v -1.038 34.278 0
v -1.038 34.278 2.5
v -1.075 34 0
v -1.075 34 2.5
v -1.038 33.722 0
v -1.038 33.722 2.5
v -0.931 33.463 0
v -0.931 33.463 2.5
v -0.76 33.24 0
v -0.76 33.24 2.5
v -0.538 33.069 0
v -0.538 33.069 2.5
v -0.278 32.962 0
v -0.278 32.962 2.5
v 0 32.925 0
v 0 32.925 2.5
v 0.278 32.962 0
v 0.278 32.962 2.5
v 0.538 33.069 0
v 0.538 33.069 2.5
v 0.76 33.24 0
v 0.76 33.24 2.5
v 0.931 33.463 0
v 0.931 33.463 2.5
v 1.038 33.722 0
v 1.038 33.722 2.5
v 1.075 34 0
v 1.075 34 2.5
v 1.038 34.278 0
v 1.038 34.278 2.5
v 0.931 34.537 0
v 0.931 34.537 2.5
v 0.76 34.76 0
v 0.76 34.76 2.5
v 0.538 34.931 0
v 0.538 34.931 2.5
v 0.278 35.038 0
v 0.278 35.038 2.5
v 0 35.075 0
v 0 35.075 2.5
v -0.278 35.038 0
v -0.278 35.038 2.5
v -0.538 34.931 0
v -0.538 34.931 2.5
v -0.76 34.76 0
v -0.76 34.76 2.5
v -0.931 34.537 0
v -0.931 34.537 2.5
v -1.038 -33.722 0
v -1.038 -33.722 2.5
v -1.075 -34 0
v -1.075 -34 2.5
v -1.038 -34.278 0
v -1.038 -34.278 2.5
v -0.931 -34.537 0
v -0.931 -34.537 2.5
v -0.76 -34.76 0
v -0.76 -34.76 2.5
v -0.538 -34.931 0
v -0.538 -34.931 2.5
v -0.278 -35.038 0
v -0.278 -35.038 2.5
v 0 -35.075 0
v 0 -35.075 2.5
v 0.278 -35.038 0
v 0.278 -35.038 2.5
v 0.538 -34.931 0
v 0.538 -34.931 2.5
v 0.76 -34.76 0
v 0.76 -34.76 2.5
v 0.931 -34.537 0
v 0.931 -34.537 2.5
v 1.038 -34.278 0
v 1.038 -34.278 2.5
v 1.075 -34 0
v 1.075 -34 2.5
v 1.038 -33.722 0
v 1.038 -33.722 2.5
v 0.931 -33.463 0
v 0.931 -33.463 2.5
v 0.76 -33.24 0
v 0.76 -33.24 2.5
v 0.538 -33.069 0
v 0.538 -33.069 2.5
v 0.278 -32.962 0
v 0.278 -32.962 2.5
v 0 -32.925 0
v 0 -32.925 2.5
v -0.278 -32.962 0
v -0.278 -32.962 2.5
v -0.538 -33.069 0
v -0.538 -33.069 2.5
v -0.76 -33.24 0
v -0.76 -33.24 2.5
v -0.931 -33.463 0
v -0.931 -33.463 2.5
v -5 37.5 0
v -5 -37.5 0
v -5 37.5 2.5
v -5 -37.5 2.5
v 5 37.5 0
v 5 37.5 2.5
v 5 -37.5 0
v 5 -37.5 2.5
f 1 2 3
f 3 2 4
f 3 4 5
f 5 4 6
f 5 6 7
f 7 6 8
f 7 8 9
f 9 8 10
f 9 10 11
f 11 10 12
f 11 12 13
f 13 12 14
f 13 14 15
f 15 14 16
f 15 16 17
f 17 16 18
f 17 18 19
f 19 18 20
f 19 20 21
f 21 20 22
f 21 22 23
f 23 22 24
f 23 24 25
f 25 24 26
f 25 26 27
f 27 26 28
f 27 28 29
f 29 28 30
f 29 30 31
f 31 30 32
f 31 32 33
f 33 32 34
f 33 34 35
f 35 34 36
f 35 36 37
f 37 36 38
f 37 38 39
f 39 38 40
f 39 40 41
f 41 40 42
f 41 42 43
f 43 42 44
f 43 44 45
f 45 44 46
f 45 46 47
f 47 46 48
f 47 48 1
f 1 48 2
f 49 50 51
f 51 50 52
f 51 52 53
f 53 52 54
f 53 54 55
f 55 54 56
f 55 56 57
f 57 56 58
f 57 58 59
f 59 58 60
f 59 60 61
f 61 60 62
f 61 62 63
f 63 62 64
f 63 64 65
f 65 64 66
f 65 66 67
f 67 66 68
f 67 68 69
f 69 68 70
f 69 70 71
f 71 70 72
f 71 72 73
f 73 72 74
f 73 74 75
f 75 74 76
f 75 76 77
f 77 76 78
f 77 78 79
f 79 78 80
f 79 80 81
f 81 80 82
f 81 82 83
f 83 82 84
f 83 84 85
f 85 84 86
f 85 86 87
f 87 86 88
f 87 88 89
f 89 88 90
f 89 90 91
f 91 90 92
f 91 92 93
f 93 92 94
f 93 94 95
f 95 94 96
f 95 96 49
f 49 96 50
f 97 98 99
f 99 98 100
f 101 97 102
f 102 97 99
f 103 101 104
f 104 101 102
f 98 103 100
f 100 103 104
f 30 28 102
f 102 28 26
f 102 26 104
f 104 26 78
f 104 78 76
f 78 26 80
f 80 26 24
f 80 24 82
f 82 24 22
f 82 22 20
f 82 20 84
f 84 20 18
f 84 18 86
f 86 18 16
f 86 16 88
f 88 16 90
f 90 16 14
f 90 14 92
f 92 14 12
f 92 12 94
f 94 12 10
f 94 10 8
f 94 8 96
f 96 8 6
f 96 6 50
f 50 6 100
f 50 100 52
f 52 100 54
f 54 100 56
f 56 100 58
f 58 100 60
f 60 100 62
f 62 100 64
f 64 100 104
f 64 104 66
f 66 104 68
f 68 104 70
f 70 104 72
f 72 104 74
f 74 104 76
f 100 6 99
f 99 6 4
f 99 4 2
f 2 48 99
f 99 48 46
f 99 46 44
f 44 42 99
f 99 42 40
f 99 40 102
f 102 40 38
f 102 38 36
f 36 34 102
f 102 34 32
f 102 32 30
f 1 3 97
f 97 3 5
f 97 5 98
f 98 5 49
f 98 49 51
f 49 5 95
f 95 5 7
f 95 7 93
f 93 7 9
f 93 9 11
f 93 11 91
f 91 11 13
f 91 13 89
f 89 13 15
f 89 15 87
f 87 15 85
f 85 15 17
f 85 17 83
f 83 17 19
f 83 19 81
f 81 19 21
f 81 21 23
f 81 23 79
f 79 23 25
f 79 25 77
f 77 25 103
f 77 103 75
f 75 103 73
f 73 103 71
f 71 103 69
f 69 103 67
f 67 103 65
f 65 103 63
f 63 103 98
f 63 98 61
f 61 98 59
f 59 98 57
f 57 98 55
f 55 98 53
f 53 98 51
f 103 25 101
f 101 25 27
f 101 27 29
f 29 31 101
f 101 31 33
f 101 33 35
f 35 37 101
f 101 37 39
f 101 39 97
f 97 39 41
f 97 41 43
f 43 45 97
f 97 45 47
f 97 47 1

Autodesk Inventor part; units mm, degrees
ref_plane "YZ Plane" through (0, 0, 0) normal (1, 0, 0) x (0, 1, 0)
ref_plane "XZ Plane" through (0, 0, 0) normal (0, 1, 0) x (-1, 0, 0)
ref_plane "XY Plane" through (0, 0, 0) normal (0, 0, 1) x (1, 0, 0)
sketch "Náčrt1" plane through (0, 0, 0) normal (0, 0, 1) x (1, 0, 0)
  line L0 (0, 52.5) -> (0, -52.5) projected
  line L1 (-7, 0) -> (7, 0) projected
  line L2 (-5, 37.5) -> (5, 37.5)
  line L3 (5, 37.5) -> (5, -37.5)
  line L4 (5, -37.5) -> (-5, -37.5)
  line L5 (-5, -37.5) -> (-5, 37.5)
  point P0 (0, 0)
  dimension "d0" = 75
  dimension "d1" = 10
extrude "Vysunutí1" add sketch "Náčrt1" along normal blind 2.5
sketch "Náčrt2" plane through (0, 0, 2.5) normal (0, 0, 1) x (1, 0, 0)
  line L0 (0, 52.5) -> (0, -52.5) projected
  line L1 (-7, 0) -> (7, 0) projected
  line L2 (-5, -37.5) -> (5, -37.5) projected
  line L3 (5, -37.5) -> (5, 37.5) projected
  line L4 (5, 37.5) -> (-5, 37.5) projected
  line L5 (-5, 37.5) -> (-5, -37.5) projected
  point P0 (0, 0)
  point P1 (0, 34)
  point P2 (0, -34)
  dimension "d4" = 3.5
  dimension "d5" = 3.5
hole "Díra1" at (0, 34, 2.5) at (0, -34, 2.5) direction (0, 0, -1) diameter 2.15 end through all
properties part number "battery_plate_3D tisk"
